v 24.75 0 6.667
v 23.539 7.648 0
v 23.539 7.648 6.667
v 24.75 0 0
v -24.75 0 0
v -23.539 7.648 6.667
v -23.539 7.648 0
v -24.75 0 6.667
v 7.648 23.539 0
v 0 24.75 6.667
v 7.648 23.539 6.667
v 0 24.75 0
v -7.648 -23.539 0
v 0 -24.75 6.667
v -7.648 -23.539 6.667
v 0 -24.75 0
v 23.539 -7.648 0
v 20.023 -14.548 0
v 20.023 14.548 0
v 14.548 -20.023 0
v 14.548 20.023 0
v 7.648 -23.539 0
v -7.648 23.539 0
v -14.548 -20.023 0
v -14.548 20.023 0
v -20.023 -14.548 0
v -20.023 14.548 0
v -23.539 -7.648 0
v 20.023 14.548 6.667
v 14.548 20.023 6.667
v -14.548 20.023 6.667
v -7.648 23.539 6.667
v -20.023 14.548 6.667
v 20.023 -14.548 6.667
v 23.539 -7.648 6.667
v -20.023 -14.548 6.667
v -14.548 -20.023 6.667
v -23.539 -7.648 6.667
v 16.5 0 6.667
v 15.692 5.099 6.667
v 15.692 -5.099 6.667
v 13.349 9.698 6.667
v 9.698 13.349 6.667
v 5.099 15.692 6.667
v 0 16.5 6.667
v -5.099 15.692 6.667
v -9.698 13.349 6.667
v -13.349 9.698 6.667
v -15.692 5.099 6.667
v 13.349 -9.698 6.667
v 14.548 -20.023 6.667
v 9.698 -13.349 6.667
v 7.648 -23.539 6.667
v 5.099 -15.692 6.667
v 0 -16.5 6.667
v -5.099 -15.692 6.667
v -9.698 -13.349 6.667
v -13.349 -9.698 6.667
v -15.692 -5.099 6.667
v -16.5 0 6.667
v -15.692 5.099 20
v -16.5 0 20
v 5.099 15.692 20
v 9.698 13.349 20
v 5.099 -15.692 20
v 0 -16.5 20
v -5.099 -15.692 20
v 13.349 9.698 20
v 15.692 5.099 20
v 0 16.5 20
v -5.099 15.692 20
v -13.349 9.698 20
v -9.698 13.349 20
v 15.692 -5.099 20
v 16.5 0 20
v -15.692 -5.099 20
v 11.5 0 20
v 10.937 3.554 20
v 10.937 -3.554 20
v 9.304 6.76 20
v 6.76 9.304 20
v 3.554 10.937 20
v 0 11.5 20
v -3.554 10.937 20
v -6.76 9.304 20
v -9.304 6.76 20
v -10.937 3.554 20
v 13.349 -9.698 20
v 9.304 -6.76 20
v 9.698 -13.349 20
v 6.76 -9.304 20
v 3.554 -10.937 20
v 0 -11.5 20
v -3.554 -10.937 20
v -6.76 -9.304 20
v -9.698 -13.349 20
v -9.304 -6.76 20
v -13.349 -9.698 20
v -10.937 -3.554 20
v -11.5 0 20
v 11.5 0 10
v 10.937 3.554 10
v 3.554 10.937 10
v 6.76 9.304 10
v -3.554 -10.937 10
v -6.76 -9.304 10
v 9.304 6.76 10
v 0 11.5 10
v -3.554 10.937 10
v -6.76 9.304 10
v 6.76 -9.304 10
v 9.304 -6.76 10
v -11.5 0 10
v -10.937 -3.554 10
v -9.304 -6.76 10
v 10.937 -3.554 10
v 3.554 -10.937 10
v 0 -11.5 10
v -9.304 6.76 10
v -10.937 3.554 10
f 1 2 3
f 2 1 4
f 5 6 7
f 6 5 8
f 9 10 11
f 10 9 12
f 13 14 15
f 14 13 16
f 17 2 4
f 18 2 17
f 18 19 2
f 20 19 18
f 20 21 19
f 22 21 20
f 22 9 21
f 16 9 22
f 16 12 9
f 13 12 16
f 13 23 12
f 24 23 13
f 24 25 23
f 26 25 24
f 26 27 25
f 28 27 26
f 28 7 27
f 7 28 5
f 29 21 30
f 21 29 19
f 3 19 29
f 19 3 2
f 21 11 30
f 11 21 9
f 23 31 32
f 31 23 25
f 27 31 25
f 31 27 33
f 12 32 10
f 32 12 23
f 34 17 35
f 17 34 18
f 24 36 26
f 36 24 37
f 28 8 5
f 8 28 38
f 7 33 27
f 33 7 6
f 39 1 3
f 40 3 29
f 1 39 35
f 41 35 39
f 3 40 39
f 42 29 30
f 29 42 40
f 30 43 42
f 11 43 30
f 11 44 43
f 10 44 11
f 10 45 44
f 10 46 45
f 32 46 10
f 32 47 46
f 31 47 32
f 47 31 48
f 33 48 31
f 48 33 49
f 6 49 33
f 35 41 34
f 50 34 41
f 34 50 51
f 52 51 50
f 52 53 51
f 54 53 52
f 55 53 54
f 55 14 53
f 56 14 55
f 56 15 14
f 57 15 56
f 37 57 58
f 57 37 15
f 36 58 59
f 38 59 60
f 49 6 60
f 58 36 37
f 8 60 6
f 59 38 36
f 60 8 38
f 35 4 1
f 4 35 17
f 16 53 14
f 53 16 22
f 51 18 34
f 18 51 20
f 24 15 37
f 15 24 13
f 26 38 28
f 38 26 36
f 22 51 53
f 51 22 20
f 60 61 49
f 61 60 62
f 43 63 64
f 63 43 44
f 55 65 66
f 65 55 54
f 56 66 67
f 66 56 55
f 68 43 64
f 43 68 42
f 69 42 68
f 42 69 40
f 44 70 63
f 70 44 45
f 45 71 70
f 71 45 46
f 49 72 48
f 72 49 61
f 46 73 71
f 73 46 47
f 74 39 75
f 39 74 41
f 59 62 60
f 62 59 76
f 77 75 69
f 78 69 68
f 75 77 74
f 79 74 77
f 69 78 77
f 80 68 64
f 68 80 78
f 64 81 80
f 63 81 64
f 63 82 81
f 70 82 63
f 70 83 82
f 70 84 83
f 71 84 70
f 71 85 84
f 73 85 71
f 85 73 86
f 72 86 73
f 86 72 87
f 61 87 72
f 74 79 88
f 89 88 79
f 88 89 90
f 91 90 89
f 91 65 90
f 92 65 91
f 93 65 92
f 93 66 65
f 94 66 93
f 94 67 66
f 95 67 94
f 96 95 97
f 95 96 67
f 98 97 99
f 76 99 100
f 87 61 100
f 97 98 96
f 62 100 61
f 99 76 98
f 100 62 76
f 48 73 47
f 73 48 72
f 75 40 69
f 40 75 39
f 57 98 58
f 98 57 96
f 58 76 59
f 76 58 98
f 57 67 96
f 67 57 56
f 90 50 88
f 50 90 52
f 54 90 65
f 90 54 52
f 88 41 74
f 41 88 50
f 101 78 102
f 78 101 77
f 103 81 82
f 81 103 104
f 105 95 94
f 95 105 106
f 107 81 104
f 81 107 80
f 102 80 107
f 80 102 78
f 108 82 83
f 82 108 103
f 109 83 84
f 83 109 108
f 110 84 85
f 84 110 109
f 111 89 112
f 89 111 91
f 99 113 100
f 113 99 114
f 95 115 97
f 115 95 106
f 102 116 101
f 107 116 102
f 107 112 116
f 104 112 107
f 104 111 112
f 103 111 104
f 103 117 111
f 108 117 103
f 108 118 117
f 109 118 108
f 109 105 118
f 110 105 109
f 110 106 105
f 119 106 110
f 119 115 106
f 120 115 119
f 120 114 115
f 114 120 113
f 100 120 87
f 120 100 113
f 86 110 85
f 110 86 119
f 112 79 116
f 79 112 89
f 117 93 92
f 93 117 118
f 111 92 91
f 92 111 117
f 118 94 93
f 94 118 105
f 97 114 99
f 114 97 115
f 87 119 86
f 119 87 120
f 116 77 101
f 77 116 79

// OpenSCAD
$fn = 20;
e = 0.01;
height = 20;
candleDiameter = 22 + 1;
diameter = candleDiameter + 10;

difference() {
    union() {
        cylinder(d=diameter*1.5, h=height*(1/3));
        cylinder(d=diameter, h=height);
    }
    translate([0, 0, height/2])
        cylinder(d=candleDiameter, h=height*(2/3));
}
